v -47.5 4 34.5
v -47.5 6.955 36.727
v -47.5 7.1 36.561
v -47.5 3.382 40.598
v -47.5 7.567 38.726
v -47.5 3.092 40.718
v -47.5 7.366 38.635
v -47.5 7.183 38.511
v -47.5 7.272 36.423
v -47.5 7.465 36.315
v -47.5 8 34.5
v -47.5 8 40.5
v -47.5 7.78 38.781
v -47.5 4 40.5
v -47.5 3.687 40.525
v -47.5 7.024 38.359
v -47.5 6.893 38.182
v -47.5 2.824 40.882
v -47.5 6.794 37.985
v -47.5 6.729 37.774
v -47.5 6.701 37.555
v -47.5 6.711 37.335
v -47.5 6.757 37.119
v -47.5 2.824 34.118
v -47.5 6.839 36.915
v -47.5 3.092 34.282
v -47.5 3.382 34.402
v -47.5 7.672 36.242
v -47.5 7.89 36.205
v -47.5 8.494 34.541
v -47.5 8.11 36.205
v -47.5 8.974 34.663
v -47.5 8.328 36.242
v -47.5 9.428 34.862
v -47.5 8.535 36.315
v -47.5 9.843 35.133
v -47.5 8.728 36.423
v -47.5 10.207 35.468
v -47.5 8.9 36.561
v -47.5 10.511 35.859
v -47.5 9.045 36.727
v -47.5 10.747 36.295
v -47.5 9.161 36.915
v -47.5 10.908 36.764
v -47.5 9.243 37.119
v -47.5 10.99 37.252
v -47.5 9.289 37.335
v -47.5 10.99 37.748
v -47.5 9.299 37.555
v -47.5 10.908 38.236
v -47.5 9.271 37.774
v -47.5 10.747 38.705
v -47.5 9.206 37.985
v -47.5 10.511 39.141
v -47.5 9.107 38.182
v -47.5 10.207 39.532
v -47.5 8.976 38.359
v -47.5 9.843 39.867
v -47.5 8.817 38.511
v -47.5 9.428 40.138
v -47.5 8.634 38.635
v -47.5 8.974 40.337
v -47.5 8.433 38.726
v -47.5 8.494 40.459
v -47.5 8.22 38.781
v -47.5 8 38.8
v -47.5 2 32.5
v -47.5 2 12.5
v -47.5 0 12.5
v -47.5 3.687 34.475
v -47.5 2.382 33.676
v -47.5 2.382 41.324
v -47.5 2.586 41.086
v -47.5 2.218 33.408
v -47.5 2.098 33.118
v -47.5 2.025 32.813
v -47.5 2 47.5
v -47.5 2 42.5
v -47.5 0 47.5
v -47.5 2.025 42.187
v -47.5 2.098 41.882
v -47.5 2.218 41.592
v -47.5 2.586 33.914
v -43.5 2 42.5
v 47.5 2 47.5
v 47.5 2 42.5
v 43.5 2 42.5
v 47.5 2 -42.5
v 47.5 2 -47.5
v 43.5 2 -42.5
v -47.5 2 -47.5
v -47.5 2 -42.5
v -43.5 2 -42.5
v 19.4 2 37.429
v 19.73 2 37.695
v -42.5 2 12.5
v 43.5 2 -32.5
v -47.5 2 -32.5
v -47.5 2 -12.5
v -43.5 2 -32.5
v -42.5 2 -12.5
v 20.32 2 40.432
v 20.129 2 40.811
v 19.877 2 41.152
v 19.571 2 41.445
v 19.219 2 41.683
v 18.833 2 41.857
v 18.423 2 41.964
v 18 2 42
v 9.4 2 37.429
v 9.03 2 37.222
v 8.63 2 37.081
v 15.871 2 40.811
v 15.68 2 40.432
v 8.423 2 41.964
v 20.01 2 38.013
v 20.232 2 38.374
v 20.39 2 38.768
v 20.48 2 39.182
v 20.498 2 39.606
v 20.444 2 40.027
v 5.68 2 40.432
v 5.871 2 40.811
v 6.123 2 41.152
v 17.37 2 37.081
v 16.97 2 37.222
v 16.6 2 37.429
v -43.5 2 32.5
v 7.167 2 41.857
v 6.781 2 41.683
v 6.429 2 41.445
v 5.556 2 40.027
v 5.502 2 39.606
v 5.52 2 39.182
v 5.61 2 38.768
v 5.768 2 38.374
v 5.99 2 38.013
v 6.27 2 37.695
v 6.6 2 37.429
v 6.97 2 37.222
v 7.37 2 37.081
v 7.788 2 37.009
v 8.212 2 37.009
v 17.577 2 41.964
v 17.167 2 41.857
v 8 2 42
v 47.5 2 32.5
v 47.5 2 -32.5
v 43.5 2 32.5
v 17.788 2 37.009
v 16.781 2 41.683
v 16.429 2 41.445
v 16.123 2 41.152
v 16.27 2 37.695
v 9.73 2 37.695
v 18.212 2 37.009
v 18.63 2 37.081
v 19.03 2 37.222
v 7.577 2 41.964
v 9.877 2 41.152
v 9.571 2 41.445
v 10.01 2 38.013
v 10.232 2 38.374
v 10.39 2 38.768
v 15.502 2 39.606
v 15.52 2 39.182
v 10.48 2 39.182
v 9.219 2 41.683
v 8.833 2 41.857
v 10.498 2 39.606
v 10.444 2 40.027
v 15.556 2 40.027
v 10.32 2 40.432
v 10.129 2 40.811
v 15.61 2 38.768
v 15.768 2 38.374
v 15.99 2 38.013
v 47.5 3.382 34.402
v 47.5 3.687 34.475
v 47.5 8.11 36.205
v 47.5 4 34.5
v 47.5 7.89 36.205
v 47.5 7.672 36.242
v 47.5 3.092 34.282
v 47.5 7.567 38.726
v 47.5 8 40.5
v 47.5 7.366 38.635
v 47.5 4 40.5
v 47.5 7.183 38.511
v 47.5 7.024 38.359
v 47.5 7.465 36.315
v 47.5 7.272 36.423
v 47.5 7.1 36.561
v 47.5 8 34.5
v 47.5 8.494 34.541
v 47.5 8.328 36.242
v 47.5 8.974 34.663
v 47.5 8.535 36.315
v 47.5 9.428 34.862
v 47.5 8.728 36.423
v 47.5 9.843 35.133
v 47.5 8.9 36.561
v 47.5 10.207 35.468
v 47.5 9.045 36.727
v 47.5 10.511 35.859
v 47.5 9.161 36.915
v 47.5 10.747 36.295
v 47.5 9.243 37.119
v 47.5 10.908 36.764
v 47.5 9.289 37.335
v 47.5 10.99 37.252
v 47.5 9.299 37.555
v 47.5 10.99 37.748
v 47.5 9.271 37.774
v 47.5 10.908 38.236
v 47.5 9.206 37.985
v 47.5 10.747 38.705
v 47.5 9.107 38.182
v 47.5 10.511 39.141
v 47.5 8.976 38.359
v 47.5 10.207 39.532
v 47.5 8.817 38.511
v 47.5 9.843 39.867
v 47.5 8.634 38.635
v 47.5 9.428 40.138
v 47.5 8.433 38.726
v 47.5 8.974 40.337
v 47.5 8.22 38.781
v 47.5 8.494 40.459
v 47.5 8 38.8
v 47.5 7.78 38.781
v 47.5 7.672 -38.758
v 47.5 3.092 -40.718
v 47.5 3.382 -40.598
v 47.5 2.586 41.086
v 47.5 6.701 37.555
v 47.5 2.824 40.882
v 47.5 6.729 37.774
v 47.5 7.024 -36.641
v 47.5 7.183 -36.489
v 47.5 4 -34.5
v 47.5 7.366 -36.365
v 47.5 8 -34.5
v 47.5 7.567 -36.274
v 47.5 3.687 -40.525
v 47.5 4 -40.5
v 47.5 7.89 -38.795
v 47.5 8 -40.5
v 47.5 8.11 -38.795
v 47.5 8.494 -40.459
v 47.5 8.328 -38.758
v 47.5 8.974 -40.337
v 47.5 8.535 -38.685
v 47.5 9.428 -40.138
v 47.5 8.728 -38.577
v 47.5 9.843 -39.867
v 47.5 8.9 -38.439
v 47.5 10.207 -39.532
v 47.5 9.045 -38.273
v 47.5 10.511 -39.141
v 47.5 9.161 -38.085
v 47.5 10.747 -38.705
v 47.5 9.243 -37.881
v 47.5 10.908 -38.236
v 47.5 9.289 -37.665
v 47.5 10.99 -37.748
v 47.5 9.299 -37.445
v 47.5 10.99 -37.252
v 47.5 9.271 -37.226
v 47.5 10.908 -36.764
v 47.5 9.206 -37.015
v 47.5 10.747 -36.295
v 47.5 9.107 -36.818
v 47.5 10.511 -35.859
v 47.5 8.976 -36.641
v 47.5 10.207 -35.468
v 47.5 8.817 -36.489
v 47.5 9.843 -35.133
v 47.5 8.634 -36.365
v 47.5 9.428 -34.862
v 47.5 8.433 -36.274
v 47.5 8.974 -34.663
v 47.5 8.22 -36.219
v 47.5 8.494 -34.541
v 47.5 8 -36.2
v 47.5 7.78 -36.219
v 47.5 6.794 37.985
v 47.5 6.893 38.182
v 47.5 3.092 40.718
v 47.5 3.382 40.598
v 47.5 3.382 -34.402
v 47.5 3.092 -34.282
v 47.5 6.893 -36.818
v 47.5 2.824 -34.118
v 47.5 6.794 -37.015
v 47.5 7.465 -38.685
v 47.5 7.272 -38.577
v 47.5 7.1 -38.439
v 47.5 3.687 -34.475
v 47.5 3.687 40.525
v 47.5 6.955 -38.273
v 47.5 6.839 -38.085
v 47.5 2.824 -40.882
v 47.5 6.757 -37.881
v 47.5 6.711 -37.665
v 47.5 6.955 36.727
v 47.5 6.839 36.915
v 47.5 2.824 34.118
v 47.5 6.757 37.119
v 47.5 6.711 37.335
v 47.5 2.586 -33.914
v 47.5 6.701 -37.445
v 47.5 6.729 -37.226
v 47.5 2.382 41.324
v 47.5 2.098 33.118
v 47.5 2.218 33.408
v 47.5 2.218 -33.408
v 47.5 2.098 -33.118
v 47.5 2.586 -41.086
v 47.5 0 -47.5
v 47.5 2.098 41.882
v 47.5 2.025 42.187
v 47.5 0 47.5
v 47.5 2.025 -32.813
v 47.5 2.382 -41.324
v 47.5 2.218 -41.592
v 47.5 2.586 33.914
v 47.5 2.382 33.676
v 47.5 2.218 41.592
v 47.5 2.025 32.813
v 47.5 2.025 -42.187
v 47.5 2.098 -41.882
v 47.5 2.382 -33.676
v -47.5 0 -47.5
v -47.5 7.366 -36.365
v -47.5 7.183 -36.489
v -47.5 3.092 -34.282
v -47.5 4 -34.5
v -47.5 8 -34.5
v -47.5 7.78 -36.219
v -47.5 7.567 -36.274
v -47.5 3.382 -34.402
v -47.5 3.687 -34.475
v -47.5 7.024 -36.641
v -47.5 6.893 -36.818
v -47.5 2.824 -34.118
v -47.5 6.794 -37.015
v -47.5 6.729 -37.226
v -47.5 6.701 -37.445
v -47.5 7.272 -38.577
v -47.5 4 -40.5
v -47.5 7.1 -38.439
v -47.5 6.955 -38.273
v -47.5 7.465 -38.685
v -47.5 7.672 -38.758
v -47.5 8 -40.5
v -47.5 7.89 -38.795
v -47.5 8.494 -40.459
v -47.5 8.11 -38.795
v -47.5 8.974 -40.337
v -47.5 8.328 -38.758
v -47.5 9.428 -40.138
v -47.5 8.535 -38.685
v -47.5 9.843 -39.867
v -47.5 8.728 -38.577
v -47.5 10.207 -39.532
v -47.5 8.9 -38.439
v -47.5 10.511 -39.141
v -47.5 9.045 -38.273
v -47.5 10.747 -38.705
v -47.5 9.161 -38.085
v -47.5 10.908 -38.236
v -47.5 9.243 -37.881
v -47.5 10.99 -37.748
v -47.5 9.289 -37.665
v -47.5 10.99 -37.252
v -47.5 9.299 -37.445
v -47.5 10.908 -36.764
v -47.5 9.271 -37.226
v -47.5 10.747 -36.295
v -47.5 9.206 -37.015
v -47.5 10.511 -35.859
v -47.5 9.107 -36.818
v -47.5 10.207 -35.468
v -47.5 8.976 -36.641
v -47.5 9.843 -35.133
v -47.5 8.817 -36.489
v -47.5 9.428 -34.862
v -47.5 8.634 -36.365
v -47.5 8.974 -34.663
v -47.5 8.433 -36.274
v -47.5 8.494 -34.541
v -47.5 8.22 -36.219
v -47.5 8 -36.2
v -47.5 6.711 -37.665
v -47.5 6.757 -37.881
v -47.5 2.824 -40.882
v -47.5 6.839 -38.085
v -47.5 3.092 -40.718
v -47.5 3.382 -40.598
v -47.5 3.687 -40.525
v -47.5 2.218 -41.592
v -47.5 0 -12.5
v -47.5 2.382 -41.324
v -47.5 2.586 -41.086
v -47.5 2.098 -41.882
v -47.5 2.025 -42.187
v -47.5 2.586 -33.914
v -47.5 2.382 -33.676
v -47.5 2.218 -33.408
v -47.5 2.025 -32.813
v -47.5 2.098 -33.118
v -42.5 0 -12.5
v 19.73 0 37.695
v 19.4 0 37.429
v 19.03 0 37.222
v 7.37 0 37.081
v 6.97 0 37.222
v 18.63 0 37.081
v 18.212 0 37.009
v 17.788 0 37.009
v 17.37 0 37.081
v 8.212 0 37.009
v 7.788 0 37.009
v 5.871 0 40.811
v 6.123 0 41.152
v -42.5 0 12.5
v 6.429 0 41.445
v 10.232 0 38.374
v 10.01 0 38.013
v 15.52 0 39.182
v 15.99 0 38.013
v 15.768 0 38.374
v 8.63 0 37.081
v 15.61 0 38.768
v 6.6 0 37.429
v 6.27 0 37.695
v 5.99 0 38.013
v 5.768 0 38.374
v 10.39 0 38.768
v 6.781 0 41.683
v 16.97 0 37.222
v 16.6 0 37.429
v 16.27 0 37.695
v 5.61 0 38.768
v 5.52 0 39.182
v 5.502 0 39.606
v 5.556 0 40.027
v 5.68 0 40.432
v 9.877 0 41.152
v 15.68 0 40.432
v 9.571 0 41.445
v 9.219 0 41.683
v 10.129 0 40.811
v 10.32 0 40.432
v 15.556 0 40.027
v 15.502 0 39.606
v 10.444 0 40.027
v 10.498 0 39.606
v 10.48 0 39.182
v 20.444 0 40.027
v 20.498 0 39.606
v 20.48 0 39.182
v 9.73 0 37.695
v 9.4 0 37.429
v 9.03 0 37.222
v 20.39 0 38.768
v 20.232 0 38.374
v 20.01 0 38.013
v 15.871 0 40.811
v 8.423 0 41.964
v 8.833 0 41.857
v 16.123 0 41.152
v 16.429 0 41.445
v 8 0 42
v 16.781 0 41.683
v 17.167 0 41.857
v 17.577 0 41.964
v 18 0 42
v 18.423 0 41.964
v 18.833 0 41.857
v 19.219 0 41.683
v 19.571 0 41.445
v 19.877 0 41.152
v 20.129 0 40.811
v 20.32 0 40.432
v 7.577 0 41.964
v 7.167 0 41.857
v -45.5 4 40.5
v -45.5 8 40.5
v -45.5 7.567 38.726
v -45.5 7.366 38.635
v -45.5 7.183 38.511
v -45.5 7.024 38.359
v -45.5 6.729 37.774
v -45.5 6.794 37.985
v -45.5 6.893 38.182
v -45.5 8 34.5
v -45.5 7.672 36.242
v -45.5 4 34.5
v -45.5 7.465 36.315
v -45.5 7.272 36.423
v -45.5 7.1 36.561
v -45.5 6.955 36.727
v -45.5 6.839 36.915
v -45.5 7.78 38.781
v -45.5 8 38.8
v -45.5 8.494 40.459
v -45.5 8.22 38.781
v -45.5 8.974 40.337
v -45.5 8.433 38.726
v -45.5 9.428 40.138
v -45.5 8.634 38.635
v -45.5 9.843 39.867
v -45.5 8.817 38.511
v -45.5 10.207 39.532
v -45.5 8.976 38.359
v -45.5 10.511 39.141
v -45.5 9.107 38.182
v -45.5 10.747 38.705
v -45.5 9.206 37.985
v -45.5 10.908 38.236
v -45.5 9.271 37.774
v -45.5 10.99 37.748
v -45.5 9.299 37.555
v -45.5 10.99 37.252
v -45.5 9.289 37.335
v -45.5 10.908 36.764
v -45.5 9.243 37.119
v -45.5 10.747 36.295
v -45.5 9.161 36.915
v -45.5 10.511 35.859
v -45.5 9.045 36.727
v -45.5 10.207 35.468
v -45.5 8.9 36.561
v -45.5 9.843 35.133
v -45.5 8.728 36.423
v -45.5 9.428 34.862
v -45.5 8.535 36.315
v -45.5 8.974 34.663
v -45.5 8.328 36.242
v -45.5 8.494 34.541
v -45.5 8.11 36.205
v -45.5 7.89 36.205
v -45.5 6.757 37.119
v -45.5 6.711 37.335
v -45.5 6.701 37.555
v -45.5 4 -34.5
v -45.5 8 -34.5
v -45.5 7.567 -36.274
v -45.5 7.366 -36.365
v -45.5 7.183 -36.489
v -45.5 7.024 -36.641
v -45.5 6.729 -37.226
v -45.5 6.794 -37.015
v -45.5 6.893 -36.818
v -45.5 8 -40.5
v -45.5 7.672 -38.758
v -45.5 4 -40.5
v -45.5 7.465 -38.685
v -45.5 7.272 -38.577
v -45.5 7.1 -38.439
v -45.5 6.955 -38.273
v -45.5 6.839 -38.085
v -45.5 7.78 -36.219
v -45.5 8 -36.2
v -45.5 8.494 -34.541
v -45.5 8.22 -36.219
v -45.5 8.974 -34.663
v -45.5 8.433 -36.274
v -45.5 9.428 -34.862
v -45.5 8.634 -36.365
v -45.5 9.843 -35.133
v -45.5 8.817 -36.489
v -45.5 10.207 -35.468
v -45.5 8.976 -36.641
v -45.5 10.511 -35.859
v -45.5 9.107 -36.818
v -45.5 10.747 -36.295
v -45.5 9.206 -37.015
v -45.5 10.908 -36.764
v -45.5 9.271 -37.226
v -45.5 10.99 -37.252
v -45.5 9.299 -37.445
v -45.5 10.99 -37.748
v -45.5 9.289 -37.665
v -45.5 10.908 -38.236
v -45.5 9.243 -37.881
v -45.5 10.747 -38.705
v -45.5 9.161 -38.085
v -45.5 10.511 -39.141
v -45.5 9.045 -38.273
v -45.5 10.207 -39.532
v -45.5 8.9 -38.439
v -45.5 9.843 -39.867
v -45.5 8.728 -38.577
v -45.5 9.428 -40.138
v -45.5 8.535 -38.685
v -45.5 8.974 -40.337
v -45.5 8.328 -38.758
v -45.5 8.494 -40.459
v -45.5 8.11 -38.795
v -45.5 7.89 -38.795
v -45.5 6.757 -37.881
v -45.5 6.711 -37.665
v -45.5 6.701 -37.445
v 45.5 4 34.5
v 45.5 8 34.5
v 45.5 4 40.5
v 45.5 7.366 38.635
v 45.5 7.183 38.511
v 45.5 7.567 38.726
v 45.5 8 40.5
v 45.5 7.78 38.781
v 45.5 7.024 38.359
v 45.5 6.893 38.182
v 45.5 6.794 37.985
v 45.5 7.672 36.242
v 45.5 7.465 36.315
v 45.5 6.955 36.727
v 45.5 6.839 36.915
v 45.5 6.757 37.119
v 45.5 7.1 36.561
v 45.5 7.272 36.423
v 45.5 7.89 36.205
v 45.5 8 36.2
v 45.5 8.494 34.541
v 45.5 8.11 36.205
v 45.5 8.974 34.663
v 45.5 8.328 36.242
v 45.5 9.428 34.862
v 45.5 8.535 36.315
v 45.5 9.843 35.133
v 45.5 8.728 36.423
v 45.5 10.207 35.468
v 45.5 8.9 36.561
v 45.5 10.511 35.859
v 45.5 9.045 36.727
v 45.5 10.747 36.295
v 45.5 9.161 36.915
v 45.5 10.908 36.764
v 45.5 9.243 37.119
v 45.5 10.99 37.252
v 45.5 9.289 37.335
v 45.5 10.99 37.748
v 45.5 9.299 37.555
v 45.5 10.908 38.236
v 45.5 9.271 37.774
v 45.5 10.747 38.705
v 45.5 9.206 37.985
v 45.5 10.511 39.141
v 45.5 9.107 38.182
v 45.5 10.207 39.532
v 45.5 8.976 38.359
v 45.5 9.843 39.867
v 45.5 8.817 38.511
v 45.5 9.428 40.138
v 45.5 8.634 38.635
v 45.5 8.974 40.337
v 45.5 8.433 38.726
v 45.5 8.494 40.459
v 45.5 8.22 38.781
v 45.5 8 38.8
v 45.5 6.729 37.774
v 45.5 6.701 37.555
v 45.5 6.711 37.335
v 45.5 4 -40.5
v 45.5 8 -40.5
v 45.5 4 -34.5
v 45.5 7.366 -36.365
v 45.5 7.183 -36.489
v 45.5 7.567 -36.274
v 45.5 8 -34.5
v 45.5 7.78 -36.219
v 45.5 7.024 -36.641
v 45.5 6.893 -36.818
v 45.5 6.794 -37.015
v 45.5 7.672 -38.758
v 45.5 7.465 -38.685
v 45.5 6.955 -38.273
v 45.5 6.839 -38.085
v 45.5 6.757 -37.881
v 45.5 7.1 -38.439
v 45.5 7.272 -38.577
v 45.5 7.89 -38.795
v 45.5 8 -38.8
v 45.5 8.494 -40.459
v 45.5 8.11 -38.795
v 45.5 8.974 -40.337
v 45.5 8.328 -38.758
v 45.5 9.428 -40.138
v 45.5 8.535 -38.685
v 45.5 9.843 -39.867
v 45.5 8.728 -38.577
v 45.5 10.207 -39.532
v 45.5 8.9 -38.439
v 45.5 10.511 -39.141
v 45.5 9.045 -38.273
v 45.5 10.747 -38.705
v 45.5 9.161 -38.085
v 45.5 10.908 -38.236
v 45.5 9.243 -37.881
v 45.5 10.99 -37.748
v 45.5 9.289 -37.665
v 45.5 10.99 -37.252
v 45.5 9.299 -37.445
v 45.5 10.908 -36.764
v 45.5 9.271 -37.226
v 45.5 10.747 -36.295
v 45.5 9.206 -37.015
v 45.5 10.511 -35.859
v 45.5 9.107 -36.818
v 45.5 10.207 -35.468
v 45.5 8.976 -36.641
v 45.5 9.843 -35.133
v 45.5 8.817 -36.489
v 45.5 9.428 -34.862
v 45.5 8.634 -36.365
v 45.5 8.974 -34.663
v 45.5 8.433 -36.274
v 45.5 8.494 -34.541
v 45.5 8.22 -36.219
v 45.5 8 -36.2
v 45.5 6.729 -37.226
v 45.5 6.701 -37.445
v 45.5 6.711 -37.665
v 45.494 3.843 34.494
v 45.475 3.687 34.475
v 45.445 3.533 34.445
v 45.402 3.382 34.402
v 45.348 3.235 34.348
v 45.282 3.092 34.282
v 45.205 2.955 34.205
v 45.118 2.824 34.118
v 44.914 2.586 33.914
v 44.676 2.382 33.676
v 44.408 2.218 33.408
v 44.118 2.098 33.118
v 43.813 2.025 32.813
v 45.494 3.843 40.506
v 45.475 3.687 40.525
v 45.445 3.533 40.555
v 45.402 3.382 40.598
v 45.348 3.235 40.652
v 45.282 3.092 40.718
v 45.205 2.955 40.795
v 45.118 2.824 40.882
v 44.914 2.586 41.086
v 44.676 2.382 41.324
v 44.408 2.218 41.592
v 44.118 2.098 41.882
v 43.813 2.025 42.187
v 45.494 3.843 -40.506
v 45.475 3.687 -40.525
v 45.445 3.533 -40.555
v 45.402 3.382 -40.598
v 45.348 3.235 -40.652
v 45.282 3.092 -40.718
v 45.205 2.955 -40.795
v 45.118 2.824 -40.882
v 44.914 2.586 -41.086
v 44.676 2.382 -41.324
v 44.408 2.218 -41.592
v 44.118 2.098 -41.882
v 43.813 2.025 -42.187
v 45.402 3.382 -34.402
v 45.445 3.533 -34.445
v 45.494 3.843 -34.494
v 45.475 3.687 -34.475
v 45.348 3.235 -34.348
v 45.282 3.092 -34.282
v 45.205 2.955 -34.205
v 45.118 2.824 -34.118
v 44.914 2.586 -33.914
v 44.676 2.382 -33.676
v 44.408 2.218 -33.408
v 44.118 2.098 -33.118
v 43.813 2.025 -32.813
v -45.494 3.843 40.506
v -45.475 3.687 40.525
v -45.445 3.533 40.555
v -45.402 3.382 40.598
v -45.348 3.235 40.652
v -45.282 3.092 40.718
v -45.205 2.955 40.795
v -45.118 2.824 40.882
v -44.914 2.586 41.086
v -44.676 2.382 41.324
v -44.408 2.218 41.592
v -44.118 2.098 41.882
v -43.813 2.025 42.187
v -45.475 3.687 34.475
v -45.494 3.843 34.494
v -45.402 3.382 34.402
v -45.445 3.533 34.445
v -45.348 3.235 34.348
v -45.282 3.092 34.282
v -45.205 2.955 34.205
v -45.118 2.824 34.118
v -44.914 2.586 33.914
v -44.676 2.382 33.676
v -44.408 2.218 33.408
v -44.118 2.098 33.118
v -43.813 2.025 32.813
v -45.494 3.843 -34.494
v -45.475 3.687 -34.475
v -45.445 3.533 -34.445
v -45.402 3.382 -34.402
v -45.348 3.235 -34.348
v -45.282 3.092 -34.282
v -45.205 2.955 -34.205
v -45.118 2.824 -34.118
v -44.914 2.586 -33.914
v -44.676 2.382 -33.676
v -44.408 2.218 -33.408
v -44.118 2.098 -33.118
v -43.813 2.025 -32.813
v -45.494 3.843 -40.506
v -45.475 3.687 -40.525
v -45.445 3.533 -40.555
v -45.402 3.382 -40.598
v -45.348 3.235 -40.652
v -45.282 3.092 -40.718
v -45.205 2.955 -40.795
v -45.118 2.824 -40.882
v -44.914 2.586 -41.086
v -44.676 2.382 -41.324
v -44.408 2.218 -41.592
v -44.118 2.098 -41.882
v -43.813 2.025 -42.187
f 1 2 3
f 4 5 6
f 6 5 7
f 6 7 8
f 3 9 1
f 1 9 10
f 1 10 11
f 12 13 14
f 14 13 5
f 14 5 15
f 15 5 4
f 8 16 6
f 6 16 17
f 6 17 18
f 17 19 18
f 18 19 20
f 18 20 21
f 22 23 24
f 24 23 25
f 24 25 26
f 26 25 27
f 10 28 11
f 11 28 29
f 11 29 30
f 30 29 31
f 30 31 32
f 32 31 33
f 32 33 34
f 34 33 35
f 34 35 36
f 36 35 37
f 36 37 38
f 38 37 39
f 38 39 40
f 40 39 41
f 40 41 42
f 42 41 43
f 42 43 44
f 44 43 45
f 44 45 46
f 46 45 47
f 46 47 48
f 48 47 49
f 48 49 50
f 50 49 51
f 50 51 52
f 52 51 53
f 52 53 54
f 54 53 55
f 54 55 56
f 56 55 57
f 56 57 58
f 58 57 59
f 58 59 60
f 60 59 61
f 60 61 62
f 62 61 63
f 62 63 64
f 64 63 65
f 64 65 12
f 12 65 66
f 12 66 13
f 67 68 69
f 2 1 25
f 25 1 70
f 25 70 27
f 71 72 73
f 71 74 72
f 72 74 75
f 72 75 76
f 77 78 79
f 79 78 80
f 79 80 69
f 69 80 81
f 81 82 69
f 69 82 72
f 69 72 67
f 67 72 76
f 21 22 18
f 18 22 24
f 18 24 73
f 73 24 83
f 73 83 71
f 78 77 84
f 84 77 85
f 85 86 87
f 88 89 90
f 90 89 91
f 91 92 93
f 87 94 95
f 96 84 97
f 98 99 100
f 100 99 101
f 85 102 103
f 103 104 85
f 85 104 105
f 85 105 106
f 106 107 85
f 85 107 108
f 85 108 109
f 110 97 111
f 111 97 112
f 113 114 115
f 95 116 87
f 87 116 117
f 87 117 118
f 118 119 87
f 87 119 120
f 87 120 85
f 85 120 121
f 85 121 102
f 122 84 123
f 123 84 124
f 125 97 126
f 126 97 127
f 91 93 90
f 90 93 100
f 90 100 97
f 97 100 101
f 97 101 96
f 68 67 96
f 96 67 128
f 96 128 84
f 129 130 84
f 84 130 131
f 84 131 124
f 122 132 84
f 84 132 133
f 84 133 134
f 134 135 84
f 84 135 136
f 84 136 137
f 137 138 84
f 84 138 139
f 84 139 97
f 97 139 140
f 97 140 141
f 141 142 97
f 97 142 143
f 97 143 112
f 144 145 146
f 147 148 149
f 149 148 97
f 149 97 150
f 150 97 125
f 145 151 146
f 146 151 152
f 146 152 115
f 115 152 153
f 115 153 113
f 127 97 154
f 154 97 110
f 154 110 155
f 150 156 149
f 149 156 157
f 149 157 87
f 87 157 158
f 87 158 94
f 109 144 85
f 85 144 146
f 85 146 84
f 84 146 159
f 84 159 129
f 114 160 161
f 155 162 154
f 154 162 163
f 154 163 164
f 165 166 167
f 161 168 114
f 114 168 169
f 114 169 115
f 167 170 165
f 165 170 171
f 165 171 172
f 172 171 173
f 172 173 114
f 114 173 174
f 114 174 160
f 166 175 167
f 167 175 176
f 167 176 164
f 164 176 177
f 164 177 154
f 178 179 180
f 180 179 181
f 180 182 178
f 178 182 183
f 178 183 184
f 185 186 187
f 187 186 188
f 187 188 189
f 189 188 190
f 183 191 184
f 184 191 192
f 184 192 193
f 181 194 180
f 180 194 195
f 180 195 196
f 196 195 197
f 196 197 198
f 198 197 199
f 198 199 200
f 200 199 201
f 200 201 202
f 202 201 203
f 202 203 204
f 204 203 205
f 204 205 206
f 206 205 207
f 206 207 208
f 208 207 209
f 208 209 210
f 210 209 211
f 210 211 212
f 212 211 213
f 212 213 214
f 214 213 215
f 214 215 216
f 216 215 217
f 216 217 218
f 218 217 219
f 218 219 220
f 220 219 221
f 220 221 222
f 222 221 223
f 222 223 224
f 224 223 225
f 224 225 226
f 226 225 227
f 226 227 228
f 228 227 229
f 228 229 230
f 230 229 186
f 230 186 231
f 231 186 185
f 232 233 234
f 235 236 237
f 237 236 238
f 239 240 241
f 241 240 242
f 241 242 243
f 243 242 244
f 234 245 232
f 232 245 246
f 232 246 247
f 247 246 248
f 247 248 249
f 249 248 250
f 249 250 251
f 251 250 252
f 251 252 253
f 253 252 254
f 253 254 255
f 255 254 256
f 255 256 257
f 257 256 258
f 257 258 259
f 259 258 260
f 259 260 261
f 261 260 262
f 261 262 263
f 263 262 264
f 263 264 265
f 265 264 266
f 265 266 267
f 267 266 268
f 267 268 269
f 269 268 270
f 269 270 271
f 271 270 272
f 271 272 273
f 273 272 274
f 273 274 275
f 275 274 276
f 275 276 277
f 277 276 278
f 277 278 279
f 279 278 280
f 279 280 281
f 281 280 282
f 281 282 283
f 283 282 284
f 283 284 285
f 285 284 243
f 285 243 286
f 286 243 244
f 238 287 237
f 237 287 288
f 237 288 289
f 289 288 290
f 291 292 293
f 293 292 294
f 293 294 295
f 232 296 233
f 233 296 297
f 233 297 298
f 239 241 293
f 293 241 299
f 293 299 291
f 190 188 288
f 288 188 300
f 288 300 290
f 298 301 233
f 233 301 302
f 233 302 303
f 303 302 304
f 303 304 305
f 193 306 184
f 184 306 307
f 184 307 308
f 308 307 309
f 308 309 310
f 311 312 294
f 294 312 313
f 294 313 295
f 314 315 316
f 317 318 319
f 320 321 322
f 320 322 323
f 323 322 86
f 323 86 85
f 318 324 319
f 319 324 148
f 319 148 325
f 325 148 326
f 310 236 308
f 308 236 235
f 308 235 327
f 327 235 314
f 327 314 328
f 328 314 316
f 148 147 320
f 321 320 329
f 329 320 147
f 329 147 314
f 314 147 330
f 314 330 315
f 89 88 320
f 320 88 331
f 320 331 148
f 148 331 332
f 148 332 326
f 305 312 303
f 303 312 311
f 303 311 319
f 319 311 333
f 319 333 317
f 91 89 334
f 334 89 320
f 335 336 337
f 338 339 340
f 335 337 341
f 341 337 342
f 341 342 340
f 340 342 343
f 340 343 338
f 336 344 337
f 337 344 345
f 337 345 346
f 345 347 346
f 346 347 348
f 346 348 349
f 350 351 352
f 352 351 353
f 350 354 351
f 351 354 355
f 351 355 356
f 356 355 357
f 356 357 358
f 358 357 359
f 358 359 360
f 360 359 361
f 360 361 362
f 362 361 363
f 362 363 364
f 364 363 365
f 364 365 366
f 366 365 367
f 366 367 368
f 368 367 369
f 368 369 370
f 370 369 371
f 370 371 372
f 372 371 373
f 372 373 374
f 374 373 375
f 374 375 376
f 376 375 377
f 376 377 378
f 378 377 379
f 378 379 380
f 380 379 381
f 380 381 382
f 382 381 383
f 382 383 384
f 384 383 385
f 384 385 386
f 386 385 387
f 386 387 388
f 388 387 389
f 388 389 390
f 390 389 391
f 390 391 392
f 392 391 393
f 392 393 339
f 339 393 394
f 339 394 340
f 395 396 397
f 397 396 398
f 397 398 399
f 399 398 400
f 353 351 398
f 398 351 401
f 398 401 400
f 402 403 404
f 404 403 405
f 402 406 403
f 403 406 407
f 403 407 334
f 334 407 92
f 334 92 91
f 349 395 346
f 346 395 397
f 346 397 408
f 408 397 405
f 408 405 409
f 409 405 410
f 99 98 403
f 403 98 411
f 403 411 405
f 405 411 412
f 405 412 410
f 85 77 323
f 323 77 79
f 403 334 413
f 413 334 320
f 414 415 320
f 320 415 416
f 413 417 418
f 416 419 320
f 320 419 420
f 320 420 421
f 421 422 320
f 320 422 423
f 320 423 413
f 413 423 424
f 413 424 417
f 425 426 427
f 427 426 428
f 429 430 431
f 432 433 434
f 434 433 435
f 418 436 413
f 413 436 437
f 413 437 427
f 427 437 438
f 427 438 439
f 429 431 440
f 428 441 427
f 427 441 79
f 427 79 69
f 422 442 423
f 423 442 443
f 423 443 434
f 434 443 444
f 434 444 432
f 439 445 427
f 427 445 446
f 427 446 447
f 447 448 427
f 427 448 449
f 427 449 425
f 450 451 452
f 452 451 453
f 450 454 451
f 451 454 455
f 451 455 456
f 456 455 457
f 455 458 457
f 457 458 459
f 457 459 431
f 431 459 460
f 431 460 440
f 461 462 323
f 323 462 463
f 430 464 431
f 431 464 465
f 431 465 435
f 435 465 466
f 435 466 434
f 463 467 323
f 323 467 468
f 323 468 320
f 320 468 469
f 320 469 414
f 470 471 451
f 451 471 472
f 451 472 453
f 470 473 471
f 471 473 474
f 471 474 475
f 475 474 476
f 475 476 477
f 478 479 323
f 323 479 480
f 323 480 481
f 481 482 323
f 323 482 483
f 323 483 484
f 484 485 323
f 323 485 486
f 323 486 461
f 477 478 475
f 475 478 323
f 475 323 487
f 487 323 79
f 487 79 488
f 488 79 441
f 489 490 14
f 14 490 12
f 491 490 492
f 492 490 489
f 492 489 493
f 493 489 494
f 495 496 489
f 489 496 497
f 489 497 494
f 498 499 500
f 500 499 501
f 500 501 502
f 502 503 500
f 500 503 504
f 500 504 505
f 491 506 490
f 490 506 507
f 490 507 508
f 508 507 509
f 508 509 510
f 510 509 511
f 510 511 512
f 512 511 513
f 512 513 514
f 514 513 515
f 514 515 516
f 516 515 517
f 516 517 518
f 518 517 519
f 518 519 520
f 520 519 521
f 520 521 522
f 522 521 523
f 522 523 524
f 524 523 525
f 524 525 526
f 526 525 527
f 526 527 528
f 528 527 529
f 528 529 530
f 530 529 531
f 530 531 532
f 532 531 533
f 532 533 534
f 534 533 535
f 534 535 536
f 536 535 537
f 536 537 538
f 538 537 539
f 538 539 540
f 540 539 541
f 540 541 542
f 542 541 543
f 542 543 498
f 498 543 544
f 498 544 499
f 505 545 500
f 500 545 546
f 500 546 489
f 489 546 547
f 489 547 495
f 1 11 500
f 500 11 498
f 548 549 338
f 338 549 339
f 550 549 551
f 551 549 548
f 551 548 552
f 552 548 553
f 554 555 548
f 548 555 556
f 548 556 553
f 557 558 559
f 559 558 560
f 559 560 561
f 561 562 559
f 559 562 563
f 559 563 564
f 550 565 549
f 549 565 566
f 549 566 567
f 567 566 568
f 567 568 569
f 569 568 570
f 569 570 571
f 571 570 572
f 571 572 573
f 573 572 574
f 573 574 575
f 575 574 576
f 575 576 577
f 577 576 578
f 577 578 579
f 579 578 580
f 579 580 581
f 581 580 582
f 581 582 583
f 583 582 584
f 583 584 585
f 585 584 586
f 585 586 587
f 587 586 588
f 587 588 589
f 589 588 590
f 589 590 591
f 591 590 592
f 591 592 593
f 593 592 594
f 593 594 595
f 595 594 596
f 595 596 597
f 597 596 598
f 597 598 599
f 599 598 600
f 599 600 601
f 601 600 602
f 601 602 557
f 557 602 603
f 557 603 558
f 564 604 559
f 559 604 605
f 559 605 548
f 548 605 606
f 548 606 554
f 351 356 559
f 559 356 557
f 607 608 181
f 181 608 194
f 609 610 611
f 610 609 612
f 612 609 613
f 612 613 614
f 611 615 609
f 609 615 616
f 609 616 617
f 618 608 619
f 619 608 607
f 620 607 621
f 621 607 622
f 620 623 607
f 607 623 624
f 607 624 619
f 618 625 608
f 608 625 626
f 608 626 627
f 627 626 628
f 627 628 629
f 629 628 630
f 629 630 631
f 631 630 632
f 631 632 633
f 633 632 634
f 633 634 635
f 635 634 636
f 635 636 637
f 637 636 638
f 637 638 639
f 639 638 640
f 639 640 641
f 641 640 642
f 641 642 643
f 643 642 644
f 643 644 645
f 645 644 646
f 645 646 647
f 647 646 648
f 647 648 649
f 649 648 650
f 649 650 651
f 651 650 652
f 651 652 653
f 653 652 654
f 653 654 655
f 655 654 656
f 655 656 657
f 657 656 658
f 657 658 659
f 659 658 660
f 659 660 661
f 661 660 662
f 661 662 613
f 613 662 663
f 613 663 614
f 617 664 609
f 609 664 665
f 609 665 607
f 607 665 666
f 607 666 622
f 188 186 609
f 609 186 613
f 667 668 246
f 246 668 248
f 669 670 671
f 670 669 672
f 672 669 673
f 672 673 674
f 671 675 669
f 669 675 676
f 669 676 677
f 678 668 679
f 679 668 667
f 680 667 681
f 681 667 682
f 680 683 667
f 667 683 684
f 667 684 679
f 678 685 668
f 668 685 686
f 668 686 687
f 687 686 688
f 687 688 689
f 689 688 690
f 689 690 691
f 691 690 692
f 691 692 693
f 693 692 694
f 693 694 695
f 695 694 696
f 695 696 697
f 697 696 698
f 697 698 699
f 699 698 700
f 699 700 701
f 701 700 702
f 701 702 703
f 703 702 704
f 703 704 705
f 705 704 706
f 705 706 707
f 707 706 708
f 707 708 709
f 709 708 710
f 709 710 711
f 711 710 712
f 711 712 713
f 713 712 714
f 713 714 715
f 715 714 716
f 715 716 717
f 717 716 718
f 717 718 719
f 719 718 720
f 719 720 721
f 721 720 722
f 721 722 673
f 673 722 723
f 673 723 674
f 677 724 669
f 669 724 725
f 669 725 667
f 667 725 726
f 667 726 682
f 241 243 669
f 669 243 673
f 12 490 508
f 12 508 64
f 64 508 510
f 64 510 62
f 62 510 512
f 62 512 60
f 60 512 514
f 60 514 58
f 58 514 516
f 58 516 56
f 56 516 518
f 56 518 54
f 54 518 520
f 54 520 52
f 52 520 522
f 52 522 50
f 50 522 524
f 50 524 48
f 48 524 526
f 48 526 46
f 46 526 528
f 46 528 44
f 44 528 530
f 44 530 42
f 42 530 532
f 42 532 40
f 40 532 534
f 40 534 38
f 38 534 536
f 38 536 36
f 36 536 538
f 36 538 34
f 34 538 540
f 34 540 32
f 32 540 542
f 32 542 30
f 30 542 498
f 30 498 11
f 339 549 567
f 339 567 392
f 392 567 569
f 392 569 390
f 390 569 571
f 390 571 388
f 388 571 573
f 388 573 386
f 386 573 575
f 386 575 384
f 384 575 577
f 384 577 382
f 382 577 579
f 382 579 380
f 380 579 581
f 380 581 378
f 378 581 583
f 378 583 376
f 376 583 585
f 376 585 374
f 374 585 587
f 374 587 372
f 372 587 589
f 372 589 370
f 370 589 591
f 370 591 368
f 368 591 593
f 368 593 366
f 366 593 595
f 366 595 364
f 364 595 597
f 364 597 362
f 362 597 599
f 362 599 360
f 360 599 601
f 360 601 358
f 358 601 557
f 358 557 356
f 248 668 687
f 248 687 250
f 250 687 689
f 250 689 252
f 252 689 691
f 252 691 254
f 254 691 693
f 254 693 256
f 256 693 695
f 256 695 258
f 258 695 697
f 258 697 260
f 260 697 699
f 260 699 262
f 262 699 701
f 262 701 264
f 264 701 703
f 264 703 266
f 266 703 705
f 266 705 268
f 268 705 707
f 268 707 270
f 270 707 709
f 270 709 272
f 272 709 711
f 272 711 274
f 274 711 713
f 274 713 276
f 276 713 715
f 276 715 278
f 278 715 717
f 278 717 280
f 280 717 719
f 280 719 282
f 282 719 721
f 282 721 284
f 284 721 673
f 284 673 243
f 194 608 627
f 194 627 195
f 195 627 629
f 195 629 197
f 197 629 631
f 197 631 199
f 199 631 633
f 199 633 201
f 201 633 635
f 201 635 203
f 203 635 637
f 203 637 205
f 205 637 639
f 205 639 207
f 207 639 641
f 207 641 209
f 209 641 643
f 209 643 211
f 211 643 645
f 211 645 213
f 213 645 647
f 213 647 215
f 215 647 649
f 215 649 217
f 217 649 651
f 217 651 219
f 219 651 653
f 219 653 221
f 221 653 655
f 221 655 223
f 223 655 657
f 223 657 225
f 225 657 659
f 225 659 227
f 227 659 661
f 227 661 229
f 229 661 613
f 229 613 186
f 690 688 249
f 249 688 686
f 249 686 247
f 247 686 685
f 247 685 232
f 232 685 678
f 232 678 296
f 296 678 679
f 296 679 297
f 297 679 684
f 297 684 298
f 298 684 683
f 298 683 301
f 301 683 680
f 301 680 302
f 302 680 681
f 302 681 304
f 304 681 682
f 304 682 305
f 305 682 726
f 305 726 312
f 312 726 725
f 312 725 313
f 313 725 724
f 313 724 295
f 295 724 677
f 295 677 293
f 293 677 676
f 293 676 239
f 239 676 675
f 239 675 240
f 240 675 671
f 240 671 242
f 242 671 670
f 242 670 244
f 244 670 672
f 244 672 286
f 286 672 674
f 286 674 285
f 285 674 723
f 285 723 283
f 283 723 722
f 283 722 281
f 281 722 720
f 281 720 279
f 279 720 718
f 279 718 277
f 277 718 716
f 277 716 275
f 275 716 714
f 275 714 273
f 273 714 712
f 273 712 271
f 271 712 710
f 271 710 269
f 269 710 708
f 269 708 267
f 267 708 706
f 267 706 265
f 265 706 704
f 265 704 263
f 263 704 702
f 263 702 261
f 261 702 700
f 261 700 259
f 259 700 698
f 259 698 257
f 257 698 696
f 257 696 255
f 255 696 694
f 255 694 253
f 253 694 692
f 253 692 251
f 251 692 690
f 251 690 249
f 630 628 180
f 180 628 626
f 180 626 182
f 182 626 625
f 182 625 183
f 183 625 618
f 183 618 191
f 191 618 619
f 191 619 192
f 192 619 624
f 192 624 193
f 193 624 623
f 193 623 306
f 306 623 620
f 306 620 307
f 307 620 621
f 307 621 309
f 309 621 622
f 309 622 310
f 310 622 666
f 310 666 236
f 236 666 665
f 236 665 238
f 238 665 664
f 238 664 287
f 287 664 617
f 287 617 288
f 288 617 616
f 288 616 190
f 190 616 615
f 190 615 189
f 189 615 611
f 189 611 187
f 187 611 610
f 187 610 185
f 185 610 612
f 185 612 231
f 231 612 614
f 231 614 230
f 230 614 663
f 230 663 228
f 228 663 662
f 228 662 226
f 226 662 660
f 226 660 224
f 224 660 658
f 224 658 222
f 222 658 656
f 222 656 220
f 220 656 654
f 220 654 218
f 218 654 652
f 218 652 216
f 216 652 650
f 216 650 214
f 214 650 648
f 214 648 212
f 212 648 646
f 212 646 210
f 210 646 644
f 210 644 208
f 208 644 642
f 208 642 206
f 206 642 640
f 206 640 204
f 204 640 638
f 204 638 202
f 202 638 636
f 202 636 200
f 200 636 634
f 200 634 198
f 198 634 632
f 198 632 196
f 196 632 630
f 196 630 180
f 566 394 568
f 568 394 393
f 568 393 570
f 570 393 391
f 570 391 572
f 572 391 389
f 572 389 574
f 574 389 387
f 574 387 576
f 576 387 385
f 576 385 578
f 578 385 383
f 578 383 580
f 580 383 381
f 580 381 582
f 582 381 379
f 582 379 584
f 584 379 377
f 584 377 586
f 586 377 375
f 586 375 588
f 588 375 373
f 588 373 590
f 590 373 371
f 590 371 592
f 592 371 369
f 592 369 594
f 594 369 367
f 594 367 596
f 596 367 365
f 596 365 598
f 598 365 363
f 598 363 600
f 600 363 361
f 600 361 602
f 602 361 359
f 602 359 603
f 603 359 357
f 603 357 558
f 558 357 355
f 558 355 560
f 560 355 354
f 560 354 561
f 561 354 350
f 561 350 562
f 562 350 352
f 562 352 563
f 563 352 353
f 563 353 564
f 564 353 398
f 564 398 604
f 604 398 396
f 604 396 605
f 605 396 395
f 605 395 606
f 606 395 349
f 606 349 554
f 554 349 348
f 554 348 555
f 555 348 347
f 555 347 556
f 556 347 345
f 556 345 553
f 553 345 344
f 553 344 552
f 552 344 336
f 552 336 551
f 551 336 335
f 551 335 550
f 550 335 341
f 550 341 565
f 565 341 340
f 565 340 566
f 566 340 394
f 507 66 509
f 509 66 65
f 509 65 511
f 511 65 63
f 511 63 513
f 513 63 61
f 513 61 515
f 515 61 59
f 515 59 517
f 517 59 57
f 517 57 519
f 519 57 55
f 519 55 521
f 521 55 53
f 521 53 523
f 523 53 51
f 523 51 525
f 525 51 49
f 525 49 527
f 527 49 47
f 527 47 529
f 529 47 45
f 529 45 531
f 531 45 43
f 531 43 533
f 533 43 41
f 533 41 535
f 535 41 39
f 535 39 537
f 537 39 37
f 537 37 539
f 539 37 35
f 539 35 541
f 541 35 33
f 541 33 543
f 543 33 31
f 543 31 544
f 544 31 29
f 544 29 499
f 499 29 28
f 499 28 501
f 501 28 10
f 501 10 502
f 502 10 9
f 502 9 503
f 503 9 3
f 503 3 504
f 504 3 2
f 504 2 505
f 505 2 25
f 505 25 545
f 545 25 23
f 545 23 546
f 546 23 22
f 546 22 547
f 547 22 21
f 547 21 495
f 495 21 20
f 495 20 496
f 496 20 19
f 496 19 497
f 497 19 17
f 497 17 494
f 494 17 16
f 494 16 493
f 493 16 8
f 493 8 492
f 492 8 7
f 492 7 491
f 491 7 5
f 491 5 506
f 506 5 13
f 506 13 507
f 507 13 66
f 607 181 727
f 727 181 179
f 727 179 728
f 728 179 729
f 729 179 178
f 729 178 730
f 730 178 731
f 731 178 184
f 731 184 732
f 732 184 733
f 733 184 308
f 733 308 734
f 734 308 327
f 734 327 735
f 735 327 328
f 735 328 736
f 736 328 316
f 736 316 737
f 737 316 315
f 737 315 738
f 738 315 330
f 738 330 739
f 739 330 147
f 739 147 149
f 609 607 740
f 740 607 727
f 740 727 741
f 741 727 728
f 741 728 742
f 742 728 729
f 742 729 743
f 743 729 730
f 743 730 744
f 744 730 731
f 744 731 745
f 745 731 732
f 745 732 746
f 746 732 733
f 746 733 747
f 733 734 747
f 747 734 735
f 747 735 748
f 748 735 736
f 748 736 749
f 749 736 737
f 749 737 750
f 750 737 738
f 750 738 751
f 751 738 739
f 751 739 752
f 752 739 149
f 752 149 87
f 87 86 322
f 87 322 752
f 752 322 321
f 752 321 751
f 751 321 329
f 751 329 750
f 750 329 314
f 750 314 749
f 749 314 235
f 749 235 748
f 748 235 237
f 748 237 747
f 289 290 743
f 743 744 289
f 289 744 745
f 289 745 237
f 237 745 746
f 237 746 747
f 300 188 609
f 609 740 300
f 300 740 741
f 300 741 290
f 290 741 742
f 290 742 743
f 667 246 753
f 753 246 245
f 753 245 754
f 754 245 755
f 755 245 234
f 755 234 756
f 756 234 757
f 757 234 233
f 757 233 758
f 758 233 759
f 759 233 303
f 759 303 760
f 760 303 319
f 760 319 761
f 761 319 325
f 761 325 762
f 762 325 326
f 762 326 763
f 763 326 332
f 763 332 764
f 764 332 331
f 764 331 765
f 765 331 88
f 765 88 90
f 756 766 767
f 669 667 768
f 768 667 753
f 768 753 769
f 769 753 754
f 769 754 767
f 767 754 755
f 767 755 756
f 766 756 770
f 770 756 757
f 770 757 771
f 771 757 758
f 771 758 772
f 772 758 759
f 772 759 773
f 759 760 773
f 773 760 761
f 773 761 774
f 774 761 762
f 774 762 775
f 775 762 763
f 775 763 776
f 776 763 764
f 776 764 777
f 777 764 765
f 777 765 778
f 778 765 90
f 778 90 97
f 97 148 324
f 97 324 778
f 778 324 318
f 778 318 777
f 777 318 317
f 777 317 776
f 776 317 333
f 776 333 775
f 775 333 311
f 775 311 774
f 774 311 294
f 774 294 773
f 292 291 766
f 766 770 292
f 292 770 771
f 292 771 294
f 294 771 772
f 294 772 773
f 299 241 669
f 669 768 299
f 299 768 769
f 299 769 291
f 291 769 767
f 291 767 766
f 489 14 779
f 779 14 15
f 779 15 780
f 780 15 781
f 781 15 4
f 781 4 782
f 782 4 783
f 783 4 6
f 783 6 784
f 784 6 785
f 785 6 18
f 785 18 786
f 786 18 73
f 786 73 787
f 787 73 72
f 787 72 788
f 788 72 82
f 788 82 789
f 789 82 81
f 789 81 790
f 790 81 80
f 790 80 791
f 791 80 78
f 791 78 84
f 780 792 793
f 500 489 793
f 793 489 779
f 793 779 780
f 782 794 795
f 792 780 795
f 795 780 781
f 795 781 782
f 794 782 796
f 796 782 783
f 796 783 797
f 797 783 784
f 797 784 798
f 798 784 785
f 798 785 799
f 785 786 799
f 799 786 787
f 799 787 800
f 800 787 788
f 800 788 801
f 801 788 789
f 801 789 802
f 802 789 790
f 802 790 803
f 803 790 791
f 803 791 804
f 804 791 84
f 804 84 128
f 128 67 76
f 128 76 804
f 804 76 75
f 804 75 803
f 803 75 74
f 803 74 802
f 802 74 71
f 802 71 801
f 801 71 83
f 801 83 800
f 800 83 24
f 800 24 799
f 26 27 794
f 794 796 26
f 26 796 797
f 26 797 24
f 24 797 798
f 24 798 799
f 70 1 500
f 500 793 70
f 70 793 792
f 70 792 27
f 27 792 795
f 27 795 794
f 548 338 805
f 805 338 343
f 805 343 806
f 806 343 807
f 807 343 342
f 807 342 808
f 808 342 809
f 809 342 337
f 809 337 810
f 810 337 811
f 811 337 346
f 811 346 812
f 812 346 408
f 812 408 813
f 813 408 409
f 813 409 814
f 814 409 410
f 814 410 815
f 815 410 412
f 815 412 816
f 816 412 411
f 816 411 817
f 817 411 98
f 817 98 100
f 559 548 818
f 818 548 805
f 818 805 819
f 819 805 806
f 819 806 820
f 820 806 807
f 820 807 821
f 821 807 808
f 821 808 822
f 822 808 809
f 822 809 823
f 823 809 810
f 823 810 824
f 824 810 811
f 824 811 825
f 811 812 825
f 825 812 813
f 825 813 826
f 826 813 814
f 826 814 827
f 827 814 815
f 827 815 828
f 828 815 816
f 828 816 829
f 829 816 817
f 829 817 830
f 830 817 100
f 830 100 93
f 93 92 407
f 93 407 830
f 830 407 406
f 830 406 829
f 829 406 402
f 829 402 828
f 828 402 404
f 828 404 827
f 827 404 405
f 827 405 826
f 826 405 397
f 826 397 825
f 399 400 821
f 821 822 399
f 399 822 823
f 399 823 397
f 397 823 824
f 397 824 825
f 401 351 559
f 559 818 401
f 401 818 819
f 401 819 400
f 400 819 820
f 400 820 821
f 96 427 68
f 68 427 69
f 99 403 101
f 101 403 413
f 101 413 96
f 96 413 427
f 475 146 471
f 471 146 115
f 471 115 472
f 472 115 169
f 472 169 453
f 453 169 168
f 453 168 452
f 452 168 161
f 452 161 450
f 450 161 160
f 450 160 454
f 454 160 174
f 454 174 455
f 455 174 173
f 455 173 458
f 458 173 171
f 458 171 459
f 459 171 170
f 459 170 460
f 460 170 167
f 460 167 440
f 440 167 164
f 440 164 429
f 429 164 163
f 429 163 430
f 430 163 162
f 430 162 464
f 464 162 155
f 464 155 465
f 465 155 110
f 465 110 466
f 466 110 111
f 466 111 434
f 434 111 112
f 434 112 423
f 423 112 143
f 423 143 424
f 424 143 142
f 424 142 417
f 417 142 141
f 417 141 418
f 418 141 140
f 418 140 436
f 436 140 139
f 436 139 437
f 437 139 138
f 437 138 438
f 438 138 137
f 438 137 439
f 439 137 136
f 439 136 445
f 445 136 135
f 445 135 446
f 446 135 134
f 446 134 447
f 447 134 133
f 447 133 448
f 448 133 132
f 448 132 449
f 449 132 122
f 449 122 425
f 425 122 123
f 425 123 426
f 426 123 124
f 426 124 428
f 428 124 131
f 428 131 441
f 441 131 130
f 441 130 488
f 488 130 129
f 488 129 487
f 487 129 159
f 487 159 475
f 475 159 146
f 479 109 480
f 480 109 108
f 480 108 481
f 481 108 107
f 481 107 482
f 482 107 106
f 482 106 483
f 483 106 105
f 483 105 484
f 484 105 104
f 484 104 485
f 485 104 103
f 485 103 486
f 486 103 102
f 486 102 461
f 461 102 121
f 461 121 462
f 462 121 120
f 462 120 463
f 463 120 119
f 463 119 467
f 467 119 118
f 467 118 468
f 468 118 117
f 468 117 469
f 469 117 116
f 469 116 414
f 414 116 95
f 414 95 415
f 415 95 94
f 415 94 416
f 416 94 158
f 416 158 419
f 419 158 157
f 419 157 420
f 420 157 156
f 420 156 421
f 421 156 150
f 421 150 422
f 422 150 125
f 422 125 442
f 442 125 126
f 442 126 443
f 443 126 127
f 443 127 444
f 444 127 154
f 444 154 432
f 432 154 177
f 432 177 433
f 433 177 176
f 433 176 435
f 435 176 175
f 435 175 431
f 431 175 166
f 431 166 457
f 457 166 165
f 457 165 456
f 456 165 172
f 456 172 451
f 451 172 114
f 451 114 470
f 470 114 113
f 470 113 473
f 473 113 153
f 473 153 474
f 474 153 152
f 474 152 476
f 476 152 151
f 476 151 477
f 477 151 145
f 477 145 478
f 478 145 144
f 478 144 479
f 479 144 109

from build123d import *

# Parameters (mm, degrees)
SKETCH1_W           = 95
SKETCH1_H           = 95
BOSS_EXTRUDE1_DEPTH = 2
SKETCH2_W           = 2
SKETCH2_H           = 6
BOSS_EXTRUDE2_DEPTH = 6
SKETCH3_R           = 3
BOSS_EXTRUDE3_DEPTH = 2
SKETCH6_R           = 3
BOSS_EXTRUDE5_DEPTH = 2
SKETCH8_R           = 1.3
CUT_EXTRUDE2_DEPTH  = 96
FILLET1_R           = 2
SKETCH10_W          = 25
SKETCH10_H          = 4
CUT_EXTRUDE3_DEPTH  = 5
SKETCH11_R          = 2.5
CUT_EXTRUDE4_DEPTH  = 2


with BuildPart() as part:
    # Sketch1 → Boss-Extrude1 (new body)
    with BuildSketch(Plane(origin=(0, 0, 0), x_dir=(1, 0, 0), z_dir=(0, 1, 0))):
        Rectangle(SKETCH1_W, SKETCH1_H)
    extrude(amount=BOSS_EXTRUDE1_DEPTH)

    # Sketch2 → Boss-Extrude2 (add)
    with BuildSketch(Plane(origin=(0, 2, 0), x_dir=(1, 0, 0), z_dir=(0, 1, 0))):
        with Locations((-46.5, -37.5)):
            Rectangle(SKETCH2_W, SKETCH2_H)
        with Locations((-46.5, 37.5)):
            Rectangle(SKETCH2_W, SKETCH2_H)
        with Locations((46.5, -37.5)):
            Rectangle(SKETCH2_W, SKETCH2_H)
        with Locations((46.5, 37.5)):
            Rectangle(SKETCH2_W, SKETCH2_H)
    extrude(amount=BOSS_EXTRUDE2_DEPTH)

    # Sketch3 → Boss-Extrude3 (add)
    with BuildSketch(Plane(origin=(-45.5, 0, 0), x_dir=(0, 0, -1), z_dir=(1, 0, 0))):
        with Locations((-37.5, 8)):
            Circle(SKETCH3_R)
        with Locations((37.5, 8)):
            Circle(SKETCH3_R)
    extrude(amount=-BOSS_EXTRUDE3_DEPTH)

    # Sketch6 → Boss-Extrude5 (add)
    with BuildSketch(Plane.ZY.offset(-45.5)):
        with Locations((-37.5, 8)):
            Circle(SKETCH6_R)
        with Locations((37.5, 8)):
            Circle(SKETCH6_R)
    extrude(amount=-BOSS_EXTRUDE5_DEPTH)

    # Sketch8 → Cut-Extrude2 (cut, through all)
    with BuildSketch(Plane.ZY.offset(47.5)):
        with Locations((-37.5, 8)):
            Circle(SKETCH8_R)
        with Locations((37.5, 8)):
            Circle(SKETCH8_R)
    extrude(amount=-CUT_EXTRUDE2_DEPTH, mode=Mode.SUBTRACT)

    # Fillet1
    fillet1_edges = [part.edges().sort_by_distance(p)[0] for p in [
        (-46.5, 2, 40.5),
        (-45.5, 2, 37.5),
        (-46.5, 2, 34.5),
        (-46.5, 2, -34.5),
        (-45.5, 2, -37.5),
        (-46.5, 2, -40.5),
        (46.5, 2, 34.5),
        (45.5, 2, 37.5),
        (46.5, 2, 40.5),
        (46.5, 2, -40.5),
        (45.5, 2, -37.5),
        (46.5, 2, -34.5),
    ]]
    fillet(fillet1_edges, radius=FILLET1_R)

    # Sketch10 → Cut-Extrude3 (cut)
    with BuildSketch(Plane.ZY.offset(47.5)):
        Rectangle(SKETCH10_W, SKETCH10_H)
    extrude(amount=-CUT_EXTRUDE3_DEPTH, mode=Mode.SUBTRACT)

    # Sketch11 → Cut-Extrude4 (cut)
    with BuildSketch(Plane(origin=(0, 2, 0), x_dir=(1, 0, 0), z_dir=(0, 1, 0))):
        with Locations((18, -39.5)):
            Circle(SKETCH11_R)
        with Locations((8, -39.5)):
            Circle(SKETCH11_R)
    extrude(amount=-CUT_EXTRUDE4_DEPTH, mode=Mode.SUBTRACT)


solid = part.part
